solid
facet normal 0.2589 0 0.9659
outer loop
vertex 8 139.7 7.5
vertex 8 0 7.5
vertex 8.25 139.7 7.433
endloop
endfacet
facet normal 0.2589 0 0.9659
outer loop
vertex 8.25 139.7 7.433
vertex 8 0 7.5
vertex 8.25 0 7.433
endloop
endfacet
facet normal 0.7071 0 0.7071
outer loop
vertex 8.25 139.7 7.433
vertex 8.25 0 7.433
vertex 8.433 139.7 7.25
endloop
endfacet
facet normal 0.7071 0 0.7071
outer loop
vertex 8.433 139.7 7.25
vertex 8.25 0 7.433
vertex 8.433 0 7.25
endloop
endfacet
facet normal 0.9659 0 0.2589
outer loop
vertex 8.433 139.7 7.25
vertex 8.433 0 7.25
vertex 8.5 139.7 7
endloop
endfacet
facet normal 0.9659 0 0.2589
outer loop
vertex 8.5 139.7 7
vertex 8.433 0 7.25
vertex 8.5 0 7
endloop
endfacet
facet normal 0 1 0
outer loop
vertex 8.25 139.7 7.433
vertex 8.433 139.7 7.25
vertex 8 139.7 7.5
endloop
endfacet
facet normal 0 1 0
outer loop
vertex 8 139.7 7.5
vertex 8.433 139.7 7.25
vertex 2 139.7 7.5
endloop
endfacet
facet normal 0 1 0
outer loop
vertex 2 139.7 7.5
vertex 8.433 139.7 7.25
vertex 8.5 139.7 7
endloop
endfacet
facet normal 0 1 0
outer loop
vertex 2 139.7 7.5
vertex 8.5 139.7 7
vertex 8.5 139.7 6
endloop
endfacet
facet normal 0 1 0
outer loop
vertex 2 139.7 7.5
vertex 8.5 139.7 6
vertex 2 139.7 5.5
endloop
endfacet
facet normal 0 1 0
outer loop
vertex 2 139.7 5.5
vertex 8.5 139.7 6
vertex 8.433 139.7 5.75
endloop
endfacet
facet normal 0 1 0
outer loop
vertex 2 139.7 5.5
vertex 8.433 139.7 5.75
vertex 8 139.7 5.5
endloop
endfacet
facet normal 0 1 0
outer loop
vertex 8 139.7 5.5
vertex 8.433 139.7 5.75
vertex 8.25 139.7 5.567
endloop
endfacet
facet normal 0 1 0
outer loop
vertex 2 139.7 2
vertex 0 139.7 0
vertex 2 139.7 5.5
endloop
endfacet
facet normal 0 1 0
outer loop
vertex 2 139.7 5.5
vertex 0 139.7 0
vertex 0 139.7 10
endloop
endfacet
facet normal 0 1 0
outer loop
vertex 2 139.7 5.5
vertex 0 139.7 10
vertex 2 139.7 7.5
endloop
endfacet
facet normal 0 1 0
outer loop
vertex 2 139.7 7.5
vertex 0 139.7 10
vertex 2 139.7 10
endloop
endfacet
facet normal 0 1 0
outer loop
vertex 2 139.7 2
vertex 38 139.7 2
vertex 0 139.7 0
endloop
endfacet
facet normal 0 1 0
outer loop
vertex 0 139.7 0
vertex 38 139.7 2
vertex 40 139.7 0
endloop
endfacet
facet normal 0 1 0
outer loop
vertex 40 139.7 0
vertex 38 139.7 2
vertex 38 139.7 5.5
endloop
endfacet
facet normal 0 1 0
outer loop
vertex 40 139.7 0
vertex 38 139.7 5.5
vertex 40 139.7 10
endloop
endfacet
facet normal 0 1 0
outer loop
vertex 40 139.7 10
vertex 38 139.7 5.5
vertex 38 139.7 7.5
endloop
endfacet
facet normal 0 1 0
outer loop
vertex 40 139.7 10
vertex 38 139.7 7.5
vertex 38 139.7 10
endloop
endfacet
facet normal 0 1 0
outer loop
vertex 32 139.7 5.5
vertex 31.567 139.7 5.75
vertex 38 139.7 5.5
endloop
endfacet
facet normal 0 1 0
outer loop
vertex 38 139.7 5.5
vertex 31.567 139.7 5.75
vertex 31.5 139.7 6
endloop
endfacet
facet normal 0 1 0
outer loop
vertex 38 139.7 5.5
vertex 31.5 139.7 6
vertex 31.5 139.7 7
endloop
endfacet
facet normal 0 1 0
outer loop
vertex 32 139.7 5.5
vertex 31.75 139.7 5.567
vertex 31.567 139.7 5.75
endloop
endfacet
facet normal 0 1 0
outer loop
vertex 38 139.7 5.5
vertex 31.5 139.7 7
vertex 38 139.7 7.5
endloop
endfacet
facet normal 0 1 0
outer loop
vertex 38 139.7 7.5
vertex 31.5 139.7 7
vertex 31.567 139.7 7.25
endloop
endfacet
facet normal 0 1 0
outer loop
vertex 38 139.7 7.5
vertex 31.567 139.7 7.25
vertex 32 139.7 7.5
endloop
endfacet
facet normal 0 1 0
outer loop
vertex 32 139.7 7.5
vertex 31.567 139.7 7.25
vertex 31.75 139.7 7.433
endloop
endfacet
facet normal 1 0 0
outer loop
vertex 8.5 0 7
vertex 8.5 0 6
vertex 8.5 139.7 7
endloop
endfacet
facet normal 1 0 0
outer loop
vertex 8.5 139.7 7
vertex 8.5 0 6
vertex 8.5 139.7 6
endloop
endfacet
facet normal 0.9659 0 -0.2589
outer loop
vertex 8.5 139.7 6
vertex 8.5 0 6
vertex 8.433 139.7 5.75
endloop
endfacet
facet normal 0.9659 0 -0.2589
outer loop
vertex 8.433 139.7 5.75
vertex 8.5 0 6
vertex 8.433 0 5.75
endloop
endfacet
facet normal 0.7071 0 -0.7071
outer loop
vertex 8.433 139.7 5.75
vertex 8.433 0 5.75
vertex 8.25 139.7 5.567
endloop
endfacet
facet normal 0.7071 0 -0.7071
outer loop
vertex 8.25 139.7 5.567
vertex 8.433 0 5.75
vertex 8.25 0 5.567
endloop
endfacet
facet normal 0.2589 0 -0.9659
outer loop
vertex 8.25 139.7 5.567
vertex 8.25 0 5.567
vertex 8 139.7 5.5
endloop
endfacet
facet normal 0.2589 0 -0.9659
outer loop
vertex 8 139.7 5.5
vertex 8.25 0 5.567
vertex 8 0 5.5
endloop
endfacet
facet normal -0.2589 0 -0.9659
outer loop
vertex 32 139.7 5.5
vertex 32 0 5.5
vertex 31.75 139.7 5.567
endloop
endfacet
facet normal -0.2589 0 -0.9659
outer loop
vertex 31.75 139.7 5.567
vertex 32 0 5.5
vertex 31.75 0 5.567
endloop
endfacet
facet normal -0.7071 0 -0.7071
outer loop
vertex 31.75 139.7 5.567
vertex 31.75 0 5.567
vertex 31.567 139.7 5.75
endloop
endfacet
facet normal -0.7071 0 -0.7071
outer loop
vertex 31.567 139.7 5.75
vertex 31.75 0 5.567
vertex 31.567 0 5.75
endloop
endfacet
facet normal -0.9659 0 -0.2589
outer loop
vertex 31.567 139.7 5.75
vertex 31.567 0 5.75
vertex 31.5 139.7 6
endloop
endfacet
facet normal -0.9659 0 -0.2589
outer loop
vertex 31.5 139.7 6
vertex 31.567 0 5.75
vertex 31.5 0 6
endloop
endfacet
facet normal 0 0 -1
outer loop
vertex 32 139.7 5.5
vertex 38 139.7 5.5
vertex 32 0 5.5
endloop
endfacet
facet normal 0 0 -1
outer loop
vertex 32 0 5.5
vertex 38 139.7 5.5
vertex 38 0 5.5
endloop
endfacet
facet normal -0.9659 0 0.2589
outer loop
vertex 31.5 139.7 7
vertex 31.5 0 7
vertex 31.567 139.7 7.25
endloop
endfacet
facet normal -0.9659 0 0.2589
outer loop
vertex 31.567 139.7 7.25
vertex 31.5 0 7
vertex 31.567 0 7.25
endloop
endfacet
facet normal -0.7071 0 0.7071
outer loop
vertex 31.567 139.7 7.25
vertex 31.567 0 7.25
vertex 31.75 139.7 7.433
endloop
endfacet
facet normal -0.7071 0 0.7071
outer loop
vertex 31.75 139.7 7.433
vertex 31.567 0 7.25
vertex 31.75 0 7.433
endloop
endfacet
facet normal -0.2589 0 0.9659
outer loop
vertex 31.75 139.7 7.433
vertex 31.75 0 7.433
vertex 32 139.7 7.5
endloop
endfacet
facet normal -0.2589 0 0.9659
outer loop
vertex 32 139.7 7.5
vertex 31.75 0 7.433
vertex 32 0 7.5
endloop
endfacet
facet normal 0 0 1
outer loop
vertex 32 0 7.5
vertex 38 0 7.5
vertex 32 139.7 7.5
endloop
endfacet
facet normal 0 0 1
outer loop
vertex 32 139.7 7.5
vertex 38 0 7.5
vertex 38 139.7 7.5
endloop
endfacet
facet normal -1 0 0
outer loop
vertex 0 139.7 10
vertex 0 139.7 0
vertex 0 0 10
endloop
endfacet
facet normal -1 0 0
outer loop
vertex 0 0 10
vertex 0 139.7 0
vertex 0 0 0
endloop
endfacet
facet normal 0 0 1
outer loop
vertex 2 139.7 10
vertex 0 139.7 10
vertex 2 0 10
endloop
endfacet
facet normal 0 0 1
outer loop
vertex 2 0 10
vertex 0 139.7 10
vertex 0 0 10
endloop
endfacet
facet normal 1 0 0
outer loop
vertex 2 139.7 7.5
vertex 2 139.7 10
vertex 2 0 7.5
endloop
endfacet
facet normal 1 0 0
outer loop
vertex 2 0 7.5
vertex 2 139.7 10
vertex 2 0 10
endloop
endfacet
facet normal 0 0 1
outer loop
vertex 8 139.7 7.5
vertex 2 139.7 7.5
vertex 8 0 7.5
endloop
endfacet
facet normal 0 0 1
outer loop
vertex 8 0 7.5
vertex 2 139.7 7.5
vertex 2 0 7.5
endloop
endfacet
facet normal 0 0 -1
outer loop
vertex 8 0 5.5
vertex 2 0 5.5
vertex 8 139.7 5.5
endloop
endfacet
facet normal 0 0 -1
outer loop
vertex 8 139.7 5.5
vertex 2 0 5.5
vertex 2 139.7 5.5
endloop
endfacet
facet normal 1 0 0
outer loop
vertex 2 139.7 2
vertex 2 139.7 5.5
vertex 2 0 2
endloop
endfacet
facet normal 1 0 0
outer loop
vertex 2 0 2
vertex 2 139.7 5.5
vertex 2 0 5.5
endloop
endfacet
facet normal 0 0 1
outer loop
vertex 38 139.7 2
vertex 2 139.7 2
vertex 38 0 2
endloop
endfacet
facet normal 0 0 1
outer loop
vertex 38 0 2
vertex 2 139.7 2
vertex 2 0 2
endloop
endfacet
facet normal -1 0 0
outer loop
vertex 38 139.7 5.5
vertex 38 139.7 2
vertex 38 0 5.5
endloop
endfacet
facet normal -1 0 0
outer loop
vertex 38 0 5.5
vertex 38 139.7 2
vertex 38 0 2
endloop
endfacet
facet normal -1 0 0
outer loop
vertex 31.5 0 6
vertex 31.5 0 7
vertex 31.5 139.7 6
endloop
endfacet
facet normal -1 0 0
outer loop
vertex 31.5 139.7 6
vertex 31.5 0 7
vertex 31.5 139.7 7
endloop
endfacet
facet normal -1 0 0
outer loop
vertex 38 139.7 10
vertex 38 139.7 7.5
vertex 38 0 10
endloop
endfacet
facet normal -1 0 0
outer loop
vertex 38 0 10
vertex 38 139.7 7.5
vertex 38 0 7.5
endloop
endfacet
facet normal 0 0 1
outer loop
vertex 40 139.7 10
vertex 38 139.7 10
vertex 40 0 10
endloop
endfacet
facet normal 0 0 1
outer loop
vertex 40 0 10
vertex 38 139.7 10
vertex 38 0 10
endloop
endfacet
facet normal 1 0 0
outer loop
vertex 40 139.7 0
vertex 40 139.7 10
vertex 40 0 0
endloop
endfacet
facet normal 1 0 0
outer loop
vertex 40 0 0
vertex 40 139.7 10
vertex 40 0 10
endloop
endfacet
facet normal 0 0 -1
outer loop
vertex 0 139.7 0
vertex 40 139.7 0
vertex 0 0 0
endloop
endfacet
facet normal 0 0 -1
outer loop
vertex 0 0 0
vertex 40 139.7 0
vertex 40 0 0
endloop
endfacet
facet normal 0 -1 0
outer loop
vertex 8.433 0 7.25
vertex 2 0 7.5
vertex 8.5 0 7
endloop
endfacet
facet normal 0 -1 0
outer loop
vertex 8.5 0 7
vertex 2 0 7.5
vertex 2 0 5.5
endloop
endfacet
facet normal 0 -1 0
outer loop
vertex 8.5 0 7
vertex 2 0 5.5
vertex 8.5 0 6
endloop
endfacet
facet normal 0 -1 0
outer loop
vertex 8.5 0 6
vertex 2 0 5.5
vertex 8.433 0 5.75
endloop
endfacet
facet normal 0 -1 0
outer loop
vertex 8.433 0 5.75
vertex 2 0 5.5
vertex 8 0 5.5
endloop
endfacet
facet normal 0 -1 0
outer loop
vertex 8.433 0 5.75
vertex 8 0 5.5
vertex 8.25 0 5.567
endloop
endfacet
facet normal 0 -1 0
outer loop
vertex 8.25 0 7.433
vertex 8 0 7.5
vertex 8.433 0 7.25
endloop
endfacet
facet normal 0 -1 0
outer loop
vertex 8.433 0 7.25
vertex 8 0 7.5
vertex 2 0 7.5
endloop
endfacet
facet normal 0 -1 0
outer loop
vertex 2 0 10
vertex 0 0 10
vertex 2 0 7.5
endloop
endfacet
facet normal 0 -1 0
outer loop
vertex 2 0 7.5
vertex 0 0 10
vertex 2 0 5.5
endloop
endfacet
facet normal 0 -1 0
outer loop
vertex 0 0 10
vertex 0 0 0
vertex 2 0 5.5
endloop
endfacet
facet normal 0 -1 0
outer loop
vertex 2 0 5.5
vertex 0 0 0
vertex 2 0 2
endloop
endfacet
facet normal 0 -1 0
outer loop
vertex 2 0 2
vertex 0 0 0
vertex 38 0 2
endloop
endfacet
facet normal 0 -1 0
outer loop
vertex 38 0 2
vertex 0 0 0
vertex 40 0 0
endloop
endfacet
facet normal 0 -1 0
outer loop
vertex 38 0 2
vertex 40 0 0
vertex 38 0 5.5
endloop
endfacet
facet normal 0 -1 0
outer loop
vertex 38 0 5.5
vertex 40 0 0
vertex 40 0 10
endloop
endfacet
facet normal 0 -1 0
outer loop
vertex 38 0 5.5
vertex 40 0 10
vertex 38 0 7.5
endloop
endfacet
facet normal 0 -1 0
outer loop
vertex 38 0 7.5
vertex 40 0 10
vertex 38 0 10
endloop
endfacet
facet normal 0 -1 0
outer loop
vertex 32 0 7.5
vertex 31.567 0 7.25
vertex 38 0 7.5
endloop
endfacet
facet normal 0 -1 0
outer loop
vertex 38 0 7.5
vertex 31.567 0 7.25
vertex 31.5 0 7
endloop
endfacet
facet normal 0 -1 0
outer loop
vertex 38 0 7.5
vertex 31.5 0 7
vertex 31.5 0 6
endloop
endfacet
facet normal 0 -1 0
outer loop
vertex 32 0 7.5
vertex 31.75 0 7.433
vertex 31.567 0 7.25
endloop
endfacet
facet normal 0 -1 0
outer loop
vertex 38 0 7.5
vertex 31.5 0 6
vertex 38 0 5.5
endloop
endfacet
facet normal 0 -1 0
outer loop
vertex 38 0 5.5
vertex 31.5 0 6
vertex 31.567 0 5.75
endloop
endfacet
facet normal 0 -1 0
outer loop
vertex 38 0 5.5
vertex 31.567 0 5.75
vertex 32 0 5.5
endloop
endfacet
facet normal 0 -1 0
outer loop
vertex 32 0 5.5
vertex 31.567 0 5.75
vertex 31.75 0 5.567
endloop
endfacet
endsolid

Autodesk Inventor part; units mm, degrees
ref_plane "YZ Plane" through (0, 0, 0) normal (1, 0, 0) x (0, 1, 0)
ref_plane "XZ Plane" through (0, 0, 0) normal (0, 1, 0) x (-1, 0, 0)
ref_plane "XY Plane" through (0, 0, 0) normal (0, 0, 1) x (1, 0, 0)
sketch "Sketch1" plane through (0, 0, 0) normal (0, 1, 0) x (-1, 0, 0)
  line L0 (0, 0) -> (-40, 0)
  line L1 (-40, 0) -> (-40, -10)
  line L2 (-40, -10) -> (0, -10)
  line L3 (0, -10) -> (0, 0)
  line L4 (0, 0) -> (-40, 0)
  line L5 (-40, 0) -> (-40, -2)
  line L6 (-40, -2) -> (0, -2)
  line L7 (0, -2) -> (0, 0)
  line L8 (0, -10) -> (-2, -10)
  line L9 (-2, -10) -> (-2, 0)
  line L10 (-2, 0) -> (0, 0)
  line L11 (0, 0) -> (0, -10)
  line L12 (-40, -10) -> (-38, -10)
  line L13 (-38, -10) -> (-38, 0)
  line L14 (-38, 0) -> (-40, 0)
  line L15 (-40, 0) -> (-40, -10)
  line L16 (-2, -7.5) -> (-38, -7.5)
  line L17 (-38, -7.5) -> (-38, -5.5)
  line L18 (-38, -5.5) -> (-2, -5.5)
  line L19 (-2, -5.5) -> (-2, -7.5)
  line L20 (-8.5, -10) -> (-31.5, -10)
  line L21 (-31.5, -10) -> (-31.5, -2)
  line L22 (-31.5, -2) -> (-8.5, -2)
  line L23 (-8.5, -2) -> (-8.5, -10)
  point P0 (-38, -10)
  point P1 (-38, -7.5)
  point P2 (-31.5, -7.5)
  point P3 (-31.5, -5.5)
  point P4 (-38, -2)
  point P5 (-2, -2)
  point P6 (-2, -5.5)
  point P7 (-8.5, -5.5)
  point P8 (-8.5, -7.5)
  dimension "d0" = 10
  dimension "d1" = 40
  dimension "d2" = 2
  dimension "d3" = 2
  dimension "d4" = 2
  dimension "d5" = 2
  dimension "d6" = 3.5
  dimension "d7" = 2.5
  dimension "d13" = 6.5
  dimension "d14" = 6.5
extrude "Extrusion1" add sketch "Sketch1" along normal blind 139.7 contours L3 L6 L9 L0 | L9 L6 L13 L0 | L3 L2 L9 L6 | L13 L6 L1 L0 | L13 L2 L1 L6 | L9 L16 L23 L18 | L18 L21 L16 L13
fillet "Fillet1" radius 0.5 2 edges at (31.5, 69.85, -7.5) (31.5, 69.85, -5.5)
fillet "Fillet2" radius 0.5 2 edges at (8.5, 69.85, -5.5) (8.5, 69.85, -7.5)
move or copy body "Rotate1" bodies to move or copy 1 copy no rotation origin (0, 0, 0) rotation axis (0, 1, 0) rotation angle 180 translate (40, 0, 0)
properties part number "lift"
